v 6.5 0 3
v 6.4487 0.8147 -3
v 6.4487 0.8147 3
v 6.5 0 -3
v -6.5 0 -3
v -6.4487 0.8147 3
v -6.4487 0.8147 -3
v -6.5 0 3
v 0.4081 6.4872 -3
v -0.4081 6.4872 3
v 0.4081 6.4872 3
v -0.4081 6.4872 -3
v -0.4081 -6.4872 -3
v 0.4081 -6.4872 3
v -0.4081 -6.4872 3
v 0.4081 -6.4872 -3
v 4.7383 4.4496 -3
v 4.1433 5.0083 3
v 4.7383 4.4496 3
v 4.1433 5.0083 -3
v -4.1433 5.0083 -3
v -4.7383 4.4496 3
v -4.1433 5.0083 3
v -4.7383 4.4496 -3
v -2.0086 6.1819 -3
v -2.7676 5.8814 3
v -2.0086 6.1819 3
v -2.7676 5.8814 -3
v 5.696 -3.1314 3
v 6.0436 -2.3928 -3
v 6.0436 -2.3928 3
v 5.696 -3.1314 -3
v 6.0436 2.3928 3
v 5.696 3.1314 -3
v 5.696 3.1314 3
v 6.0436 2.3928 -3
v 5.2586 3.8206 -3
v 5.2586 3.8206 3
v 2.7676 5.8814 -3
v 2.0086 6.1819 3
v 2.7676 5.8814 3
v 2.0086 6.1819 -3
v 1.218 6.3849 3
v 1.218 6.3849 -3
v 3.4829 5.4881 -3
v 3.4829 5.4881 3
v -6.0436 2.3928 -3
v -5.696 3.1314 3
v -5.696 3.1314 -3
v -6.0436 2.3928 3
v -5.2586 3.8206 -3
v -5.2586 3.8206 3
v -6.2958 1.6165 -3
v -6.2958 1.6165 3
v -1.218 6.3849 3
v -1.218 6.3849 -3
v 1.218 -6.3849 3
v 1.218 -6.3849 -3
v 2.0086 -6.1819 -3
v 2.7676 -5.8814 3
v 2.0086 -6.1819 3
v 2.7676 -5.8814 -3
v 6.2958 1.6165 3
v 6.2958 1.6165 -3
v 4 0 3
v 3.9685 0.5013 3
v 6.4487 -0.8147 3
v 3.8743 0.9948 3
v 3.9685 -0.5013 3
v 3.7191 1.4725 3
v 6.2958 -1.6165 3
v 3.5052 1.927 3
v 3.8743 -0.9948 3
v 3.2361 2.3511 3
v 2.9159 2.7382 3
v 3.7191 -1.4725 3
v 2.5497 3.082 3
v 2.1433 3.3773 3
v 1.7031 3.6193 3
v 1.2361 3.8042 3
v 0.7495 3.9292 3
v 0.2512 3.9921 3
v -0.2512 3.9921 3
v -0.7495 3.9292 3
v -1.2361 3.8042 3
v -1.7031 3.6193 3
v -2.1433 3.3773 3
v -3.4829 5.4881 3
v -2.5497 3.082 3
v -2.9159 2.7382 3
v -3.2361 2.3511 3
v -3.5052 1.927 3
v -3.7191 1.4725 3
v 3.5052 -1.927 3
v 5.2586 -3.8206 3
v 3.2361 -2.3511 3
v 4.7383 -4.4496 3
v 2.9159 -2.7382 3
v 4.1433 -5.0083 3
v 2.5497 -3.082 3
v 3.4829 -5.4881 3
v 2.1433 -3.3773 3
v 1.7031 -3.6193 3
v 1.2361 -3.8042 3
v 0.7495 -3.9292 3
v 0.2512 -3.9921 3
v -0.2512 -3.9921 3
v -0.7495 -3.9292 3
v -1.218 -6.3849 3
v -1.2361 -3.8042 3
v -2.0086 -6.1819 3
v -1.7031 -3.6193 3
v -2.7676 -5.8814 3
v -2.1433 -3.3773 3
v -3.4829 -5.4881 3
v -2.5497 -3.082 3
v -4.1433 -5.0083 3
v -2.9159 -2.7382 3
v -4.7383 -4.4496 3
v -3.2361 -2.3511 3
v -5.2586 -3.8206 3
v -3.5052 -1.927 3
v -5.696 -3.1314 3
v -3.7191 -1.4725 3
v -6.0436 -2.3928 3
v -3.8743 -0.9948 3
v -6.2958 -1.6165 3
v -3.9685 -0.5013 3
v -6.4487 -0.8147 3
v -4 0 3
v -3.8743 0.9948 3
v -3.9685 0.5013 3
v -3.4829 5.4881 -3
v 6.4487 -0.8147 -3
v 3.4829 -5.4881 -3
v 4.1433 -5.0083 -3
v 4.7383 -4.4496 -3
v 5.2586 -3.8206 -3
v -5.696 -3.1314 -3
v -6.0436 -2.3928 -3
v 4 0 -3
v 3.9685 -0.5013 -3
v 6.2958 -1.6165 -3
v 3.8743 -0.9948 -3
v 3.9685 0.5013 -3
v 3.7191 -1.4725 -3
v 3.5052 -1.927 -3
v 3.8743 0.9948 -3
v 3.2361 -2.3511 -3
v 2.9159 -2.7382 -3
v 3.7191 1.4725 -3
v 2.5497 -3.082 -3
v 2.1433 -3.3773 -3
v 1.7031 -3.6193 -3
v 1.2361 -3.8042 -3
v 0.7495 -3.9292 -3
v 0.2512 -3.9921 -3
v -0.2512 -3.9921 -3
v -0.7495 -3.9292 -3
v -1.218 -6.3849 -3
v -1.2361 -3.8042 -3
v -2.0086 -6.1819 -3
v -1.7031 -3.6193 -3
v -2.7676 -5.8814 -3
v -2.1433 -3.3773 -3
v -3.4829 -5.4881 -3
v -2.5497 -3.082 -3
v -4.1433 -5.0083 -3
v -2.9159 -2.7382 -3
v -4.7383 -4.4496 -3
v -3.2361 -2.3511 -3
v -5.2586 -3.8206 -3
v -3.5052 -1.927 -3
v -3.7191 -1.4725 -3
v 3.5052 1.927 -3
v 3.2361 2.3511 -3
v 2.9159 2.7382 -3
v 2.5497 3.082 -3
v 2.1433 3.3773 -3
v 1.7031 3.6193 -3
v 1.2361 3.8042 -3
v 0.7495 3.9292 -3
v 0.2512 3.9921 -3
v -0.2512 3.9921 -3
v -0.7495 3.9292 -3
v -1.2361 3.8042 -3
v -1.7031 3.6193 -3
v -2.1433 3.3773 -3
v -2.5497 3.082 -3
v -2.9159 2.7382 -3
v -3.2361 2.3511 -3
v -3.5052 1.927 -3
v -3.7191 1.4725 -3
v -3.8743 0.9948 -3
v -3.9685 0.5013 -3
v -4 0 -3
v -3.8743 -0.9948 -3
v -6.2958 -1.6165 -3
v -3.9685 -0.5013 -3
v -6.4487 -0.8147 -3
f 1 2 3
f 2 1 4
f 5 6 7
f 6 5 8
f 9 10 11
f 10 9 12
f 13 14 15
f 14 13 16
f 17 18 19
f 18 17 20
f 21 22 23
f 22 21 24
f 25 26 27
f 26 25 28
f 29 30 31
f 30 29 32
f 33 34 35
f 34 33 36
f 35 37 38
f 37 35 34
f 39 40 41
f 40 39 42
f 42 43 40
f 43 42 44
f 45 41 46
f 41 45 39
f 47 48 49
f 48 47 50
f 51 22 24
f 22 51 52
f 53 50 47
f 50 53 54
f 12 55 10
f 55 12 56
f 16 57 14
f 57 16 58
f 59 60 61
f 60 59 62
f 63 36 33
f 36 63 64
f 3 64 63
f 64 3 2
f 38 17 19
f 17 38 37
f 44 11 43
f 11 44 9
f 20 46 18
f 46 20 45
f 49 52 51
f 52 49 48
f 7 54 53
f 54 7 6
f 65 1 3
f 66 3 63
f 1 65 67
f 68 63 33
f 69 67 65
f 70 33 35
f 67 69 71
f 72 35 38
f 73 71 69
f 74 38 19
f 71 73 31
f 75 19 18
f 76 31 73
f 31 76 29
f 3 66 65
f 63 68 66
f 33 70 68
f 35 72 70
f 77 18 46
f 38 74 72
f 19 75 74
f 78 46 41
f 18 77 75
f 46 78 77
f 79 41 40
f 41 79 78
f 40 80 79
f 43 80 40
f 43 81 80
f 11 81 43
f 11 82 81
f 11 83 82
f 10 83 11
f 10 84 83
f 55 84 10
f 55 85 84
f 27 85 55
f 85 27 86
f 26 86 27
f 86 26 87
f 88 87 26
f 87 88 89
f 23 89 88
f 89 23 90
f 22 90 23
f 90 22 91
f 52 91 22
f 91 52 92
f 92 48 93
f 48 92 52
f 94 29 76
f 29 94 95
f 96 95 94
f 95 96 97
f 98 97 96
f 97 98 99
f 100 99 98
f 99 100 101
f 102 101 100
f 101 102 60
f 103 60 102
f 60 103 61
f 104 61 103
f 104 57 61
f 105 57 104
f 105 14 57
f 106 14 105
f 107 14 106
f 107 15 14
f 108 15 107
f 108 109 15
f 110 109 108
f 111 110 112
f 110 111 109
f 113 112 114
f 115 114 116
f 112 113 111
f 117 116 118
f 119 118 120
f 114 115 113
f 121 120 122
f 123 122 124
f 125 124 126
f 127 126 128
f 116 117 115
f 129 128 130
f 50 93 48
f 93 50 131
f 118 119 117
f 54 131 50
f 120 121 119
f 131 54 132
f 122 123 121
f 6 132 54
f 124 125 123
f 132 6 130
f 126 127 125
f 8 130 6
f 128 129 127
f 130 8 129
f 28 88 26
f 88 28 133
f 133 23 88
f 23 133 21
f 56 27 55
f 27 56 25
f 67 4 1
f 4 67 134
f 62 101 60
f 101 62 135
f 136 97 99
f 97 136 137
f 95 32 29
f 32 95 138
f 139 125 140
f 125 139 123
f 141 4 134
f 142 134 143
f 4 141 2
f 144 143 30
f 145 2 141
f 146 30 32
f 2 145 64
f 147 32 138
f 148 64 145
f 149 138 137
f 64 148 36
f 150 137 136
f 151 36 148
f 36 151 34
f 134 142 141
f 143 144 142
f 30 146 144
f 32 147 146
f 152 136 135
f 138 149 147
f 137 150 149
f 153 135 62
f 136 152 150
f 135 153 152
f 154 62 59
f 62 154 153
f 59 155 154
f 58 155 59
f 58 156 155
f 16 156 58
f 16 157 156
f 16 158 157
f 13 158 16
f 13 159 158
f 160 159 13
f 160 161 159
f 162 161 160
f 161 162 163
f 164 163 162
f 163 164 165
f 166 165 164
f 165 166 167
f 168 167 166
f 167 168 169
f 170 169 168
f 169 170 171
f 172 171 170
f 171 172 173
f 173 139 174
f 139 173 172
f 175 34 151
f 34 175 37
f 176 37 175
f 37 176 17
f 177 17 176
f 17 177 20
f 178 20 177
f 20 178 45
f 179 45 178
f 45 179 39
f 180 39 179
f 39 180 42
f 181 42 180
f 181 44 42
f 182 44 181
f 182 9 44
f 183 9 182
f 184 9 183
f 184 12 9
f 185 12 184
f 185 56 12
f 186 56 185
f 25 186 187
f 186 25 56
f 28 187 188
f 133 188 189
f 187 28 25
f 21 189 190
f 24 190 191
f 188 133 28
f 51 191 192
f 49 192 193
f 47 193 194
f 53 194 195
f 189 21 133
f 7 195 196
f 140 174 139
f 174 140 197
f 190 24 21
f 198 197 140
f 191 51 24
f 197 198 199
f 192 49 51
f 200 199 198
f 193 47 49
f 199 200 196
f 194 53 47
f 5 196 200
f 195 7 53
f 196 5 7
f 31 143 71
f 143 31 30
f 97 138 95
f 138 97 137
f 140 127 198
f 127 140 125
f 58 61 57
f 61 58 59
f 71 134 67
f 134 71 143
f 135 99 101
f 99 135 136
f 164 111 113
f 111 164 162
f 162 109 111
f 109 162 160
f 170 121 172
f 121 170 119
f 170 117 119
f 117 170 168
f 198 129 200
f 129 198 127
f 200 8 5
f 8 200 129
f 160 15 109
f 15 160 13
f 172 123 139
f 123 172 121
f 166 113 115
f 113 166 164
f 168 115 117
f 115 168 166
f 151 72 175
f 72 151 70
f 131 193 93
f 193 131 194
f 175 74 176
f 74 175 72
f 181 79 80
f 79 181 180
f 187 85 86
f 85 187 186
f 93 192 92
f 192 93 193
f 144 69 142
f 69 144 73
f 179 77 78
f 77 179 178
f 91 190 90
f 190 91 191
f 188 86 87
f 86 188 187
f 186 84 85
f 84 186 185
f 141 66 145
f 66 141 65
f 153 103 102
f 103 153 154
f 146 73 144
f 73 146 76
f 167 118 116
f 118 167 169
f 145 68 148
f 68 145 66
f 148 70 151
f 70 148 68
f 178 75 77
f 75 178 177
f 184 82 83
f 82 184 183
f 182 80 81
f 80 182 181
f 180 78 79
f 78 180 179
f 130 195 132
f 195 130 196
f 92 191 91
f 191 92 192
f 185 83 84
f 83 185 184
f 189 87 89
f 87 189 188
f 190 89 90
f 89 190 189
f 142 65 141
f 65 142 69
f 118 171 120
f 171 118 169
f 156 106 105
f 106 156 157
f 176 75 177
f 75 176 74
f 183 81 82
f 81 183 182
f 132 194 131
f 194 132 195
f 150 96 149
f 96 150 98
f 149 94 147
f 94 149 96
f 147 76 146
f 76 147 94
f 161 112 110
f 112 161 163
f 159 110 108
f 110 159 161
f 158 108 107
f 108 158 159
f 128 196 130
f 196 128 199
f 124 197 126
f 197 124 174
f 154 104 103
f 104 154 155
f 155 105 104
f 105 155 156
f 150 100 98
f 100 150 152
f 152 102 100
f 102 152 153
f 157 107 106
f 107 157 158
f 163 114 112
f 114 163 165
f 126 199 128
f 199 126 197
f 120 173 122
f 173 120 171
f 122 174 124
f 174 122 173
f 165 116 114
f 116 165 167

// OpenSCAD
$fn = 50;


difference() {
	union() {
		translate(v = [0, 0, -3.0000000000]) {
			cylinder(h = 6, r = 6.5000000000);
		}
	}
	union() {
		translate(v = [0, 0, -100.0000000000]) {
			cylinder(h = 200, r = 4);
		}
	}
}
